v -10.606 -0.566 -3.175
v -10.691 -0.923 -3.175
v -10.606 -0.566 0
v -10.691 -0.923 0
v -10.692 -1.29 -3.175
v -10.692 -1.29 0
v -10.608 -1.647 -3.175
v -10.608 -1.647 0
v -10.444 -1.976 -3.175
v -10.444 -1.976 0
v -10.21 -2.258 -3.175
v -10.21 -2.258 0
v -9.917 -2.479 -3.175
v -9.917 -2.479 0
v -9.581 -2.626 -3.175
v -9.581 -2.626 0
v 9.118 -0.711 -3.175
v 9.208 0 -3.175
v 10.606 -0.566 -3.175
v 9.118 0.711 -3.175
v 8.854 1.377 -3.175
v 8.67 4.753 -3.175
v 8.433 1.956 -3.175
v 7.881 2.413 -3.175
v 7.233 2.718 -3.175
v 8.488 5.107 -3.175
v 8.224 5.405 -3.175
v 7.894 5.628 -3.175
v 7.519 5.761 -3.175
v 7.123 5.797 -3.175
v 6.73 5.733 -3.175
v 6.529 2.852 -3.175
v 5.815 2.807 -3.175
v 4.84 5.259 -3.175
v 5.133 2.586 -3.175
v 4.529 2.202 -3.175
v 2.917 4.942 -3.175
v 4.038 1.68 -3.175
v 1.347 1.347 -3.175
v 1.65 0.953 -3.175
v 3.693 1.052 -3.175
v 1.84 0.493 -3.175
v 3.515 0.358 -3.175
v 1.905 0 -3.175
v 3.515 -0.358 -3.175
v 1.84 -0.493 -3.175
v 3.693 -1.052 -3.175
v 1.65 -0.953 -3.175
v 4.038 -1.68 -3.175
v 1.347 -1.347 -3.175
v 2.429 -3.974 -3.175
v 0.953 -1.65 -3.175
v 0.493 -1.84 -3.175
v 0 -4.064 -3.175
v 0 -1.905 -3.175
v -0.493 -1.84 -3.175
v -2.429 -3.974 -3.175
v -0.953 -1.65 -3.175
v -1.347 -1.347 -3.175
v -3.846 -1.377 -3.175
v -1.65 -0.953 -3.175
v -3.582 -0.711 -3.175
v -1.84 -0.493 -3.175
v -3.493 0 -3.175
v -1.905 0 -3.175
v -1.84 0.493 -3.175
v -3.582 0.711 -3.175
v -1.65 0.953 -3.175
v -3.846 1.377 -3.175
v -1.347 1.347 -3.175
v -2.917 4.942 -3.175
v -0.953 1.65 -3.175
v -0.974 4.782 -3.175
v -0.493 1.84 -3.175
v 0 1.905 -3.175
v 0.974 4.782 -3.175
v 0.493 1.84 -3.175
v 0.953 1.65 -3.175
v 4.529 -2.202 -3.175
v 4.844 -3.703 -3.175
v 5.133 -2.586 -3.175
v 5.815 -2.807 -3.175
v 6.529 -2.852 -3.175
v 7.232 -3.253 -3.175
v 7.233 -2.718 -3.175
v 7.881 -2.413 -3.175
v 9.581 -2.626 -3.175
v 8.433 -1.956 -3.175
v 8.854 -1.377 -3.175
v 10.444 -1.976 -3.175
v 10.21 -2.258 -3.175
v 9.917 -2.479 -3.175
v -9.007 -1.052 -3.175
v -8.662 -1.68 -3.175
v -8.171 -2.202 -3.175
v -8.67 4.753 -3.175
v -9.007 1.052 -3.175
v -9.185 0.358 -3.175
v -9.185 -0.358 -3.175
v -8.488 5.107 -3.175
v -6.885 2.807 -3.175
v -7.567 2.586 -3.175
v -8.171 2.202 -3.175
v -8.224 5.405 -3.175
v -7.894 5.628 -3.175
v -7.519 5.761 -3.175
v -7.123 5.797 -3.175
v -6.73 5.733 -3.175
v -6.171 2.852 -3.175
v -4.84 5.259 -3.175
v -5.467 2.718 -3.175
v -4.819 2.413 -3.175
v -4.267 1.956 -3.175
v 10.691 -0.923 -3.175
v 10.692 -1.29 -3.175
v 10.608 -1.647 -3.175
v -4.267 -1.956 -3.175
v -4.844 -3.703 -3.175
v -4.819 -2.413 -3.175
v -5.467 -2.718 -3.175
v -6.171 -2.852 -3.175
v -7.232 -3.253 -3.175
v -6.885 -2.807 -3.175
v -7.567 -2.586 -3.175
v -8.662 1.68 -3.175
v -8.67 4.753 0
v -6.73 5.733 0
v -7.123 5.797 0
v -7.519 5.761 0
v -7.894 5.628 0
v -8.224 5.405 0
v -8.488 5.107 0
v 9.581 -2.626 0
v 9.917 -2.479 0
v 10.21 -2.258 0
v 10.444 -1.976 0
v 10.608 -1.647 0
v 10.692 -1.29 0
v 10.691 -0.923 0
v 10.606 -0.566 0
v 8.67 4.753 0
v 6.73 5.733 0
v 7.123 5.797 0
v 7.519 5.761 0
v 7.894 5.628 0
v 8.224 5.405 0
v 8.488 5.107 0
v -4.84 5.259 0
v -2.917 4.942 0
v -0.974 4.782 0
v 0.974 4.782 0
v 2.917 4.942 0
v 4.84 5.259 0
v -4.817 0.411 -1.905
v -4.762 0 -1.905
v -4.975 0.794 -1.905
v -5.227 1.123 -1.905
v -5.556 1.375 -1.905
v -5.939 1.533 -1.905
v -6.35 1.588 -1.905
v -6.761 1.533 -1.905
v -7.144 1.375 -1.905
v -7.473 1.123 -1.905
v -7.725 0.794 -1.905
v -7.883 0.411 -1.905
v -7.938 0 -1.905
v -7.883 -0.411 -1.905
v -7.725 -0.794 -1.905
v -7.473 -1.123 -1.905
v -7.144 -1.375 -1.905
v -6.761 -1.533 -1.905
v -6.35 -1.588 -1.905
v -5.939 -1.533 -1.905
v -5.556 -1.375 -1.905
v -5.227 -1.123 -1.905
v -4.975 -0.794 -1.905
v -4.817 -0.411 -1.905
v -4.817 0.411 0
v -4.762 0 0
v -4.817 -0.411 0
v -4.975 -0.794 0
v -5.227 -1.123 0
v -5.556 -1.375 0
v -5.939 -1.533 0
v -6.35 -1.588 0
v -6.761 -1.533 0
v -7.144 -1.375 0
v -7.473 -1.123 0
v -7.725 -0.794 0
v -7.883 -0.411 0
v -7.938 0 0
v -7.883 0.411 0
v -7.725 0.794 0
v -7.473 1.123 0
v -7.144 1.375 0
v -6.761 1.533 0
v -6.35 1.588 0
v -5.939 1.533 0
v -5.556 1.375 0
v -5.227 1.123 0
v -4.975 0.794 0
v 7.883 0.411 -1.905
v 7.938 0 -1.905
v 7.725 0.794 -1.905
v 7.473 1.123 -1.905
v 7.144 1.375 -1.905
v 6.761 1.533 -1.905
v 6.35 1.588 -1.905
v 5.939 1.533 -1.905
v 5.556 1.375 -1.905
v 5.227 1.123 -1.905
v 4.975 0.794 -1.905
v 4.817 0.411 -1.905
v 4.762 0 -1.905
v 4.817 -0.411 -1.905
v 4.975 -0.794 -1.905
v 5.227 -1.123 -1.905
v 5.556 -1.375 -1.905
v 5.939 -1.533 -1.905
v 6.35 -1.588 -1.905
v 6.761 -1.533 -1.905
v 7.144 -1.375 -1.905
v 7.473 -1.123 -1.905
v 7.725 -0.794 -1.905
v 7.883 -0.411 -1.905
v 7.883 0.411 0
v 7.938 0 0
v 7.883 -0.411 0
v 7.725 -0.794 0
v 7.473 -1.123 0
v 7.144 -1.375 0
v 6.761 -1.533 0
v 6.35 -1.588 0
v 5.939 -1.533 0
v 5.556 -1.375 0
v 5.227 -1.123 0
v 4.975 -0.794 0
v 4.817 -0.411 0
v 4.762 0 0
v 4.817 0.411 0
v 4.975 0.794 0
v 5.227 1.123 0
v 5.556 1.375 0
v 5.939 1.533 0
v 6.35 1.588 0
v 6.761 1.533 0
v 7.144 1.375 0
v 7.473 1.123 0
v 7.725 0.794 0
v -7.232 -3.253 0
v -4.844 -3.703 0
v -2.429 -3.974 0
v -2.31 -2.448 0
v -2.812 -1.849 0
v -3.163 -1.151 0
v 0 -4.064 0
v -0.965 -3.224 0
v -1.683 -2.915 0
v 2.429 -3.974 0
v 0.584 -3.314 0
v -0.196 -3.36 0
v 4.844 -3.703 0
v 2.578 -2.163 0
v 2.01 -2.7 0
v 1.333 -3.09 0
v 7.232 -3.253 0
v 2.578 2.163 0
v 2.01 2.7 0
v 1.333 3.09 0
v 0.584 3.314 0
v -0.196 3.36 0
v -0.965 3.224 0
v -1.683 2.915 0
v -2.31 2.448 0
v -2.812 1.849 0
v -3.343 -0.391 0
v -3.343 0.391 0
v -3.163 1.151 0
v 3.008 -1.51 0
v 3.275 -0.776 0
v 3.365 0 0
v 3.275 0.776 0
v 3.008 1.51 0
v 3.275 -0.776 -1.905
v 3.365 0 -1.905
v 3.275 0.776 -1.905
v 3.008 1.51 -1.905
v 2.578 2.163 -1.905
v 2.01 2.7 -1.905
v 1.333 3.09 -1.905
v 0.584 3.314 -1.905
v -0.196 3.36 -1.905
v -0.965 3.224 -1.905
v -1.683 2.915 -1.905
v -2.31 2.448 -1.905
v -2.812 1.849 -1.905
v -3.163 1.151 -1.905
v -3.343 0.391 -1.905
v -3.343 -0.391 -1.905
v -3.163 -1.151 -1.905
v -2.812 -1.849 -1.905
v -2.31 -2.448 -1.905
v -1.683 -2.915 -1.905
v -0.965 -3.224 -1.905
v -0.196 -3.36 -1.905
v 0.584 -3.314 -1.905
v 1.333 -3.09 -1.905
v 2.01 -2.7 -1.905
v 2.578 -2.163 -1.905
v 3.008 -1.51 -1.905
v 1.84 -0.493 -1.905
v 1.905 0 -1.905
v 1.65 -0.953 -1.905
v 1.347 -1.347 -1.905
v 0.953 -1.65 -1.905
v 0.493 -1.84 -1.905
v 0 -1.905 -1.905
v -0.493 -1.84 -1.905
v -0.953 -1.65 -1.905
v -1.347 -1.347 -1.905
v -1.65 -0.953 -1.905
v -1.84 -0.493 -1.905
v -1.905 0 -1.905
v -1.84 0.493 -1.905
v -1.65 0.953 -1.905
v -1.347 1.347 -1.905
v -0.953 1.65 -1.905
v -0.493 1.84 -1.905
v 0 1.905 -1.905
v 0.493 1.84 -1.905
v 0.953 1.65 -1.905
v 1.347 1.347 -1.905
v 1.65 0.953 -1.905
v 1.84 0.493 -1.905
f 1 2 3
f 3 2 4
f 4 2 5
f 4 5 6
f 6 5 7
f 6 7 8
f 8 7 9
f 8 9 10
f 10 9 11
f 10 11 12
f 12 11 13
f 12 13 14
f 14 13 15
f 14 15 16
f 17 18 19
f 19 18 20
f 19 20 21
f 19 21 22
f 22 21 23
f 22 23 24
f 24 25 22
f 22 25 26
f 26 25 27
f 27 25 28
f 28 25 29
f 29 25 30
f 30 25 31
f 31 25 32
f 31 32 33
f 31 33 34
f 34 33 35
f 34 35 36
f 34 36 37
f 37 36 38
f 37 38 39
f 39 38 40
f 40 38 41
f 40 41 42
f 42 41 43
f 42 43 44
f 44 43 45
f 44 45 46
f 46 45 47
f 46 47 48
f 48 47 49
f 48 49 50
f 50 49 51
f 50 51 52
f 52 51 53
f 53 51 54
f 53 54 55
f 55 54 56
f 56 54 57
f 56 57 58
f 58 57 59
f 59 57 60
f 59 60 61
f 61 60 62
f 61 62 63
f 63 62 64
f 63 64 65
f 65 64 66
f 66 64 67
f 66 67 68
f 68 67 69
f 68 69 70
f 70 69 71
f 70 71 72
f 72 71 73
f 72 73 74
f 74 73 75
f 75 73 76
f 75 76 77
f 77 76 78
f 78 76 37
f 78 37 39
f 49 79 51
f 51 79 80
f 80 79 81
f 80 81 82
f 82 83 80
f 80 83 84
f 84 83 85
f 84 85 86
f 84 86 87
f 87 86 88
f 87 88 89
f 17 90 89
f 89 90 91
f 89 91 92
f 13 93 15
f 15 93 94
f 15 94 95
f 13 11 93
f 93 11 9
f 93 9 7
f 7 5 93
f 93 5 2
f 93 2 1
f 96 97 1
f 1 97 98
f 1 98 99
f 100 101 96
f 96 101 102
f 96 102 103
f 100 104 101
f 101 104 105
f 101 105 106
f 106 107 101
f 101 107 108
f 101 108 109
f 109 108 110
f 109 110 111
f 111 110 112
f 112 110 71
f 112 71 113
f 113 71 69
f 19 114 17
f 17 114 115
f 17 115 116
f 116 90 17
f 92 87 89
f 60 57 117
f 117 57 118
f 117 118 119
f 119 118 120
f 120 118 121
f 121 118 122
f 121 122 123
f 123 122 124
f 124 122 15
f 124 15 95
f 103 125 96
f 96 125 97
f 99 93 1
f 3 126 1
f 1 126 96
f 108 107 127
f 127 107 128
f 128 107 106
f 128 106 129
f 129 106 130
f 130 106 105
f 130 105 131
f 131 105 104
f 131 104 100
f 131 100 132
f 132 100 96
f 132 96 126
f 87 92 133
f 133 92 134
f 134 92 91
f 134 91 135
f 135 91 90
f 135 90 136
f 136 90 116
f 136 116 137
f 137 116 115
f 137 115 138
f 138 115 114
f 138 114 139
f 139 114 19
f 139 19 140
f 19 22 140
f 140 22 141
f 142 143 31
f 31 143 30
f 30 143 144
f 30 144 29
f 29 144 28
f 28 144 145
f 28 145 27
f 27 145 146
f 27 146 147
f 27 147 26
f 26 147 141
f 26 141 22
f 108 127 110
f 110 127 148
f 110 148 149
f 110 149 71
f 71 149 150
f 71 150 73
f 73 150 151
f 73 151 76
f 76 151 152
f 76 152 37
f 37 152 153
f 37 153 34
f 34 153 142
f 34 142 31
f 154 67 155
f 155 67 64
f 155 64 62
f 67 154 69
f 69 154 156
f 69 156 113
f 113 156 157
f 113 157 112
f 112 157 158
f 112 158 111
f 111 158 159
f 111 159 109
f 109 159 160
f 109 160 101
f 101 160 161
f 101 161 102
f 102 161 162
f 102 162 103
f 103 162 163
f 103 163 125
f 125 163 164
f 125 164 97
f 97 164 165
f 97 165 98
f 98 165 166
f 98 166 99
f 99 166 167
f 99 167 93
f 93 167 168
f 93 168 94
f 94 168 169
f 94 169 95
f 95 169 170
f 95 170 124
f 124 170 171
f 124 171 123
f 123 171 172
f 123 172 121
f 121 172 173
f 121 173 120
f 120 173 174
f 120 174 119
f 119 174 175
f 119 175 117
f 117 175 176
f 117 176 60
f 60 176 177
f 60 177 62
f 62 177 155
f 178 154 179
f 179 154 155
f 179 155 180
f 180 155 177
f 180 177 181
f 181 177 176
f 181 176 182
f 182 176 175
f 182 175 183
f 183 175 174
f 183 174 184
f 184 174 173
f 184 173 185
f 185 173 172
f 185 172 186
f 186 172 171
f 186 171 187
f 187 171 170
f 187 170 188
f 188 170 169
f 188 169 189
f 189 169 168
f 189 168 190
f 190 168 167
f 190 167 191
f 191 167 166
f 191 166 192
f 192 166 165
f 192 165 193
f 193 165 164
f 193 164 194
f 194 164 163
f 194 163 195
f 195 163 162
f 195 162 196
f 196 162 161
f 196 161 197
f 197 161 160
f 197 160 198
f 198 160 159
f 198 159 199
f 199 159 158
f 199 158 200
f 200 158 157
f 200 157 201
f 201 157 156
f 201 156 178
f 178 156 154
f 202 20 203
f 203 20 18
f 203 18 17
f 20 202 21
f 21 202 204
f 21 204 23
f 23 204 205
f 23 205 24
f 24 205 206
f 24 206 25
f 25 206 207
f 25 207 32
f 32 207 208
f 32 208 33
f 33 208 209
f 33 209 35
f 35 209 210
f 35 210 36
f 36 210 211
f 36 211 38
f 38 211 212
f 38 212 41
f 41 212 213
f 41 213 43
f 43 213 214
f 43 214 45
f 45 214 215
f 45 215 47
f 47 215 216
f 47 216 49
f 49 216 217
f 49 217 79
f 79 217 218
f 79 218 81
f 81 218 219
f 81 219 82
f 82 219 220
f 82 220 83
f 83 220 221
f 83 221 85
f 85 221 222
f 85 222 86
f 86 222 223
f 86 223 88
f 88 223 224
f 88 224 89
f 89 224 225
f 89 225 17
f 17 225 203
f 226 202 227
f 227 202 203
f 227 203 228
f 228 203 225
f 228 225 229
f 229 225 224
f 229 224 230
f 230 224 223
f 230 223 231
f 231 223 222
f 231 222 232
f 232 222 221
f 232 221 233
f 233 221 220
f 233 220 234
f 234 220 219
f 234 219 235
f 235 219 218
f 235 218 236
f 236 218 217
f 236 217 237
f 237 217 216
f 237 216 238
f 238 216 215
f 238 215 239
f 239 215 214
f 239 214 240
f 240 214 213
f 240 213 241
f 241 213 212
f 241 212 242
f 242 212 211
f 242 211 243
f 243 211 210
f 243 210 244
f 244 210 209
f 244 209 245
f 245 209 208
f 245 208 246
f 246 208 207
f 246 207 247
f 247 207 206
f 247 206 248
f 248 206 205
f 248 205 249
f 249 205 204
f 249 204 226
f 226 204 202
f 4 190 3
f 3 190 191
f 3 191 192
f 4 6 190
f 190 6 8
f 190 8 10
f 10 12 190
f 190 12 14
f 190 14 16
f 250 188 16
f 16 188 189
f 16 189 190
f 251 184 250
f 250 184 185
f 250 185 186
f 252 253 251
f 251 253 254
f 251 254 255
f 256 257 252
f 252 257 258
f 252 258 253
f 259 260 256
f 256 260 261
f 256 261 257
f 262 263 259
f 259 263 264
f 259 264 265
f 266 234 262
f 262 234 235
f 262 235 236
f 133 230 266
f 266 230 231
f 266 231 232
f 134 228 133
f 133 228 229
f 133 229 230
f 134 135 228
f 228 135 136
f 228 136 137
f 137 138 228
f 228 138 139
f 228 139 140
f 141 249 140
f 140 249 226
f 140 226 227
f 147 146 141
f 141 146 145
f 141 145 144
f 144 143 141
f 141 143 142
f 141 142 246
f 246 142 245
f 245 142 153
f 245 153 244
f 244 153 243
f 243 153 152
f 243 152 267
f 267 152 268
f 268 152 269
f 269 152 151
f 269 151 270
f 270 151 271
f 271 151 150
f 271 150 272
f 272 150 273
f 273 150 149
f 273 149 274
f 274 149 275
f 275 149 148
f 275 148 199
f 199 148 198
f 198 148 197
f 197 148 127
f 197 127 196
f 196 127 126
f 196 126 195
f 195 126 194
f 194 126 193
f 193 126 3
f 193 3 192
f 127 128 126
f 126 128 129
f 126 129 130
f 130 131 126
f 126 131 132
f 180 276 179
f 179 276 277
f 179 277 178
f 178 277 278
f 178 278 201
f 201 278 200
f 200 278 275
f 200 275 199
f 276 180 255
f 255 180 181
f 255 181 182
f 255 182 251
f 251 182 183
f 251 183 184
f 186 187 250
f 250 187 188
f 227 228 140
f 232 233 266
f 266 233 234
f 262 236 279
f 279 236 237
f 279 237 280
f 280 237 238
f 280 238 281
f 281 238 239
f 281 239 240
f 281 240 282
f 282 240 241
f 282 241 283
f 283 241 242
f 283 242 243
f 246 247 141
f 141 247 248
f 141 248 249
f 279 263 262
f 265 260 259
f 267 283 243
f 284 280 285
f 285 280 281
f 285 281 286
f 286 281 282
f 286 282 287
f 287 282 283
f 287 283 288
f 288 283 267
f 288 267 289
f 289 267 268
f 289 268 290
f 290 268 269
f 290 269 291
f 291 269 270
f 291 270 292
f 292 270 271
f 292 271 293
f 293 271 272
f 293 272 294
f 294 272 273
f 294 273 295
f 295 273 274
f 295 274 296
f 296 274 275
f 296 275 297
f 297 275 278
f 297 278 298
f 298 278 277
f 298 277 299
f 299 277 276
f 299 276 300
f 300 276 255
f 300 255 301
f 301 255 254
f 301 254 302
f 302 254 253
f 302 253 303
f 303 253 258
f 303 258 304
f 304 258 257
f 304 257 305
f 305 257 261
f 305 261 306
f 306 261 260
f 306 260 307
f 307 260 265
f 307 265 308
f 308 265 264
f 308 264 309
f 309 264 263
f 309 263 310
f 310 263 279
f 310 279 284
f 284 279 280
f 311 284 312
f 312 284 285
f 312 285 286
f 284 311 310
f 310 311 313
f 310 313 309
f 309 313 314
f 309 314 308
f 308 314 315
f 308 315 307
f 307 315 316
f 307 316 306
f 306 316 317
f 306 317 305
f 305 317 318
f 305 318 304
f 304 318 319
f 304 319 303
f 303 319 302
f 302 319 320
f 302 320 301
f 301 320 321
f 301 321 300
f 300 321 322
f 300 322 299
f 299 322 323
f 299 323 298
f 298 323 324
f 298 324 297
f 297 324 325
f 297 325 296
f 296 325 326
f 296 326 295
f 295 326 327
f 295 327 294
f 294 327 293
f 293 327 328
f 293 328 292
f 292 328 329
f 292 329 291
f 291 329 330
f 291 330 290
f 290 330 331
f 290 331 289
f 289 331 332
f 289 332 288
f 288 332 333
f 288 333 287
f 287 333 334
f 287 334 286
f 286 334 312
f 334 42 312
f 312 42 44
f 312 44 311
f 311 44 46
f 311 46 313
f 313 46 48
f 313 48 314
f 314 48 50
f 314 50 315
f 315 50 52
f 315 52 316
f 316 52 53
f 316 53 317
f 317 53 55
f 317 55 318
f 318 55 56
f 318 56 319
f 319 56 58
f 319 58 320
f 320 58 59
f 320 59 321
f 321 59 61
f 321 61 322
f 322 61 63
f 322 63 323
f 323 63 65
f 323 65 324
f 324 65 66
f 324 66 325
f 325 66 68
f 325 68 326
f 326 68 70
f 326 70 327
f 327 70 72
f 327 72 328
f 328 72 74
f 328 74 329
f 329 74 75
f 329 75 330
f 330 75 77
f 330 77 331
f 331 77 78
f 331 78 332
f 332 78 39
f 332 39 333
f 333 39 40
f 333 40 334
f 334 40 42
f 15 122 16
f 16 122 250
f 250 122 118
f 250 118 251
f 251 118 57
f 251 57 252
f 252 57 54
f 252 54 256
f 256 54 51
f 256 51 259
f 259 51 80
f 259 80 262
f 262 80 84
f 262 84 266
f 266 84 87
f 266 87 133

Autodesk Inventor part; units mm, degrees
ref_plane "YZ Plane" through (0, 0, 0) normal (1, 0, 0) x (0, 1, 0)
ref_plane "XZ Plane" through (0, 0, 0) normal (0, 1, 0) x (-1, 0, 0)
ref_plane "XY Plane" through (0, 0, 0) normal (0, 0, 1) x (1, 0, 0)
sketch "Sketch1" plane through (0, 0, 0) normal (0, 0, 1) x (1, 0, 0)
  circle A0 centre (0, 0) radius 1.905
  circle A1 centre (0, 0) radius 3.3655
  line L0 (0, 0) -> (0, 28.575)
  line L1 (0, 0) -> (28.575, 0) construction
  circle A2 centre (0, 28.575) radius 32.639
  line L2 (0, 0) -> (6.35, 0)
  line L3 (6.35, 0) -> (-6.35, 0)
  circle A3 centre (-6.35, 0) radius 1.5875
  circle A4 centre (6.35, 0) radius 1.5875
  line L4 (0, 28.575) -> (11.1632, -2.0956)
  line L5 (0, 28.575) -> (32.639, 28.575) construction
  line L6 (0, 28.575) -> (-11.1632, -2.0956)
  circle A5 centre (0, 28.575) radius 23.8125
  dimension "d0" = 3.81
  dimension "d1" = 6.731
  dimension "d3" = 28.575
  dimension "d4" = 90
  dimension "d5" = 65.278
  dimension "d6" = 6.35
  dimension "d7" = 12.7
  dimension "d8" = 3.175
  dimension "d9" = 3.175
  dimension "d10" = 70
  dimension "d11" = 47.625
extrude "Extrusion1" add sketch "Sketch1" against normal blind 3.175 contours L2 A1 L3 A0 | A0 L0 A1 L2 | A0 L3 A1 L0 | A5 L4 A2 L6 | A5 L6 L0 | L0 L4 A5 picked at (-9.0211, 1.6136)
extrude "Extrusion2" cut sketch "Sketch1" against normal blind 1.905 contours L2 A1 L3 A0 | A0 L0 A1 L2 | A0 L3 A1 L0
extrude "Extrusion3" cut sketch "Sketch1" against normal through all contours A5 L6 L0 | L0 L4 A5 | L6 A5 L4
chamfer "Chamfer1" distance 1.27 angle 45 2 edges at (4.7625, 0, -3.175) (-7.9375, 0, -3.175)
fillet "Fillet1" radius 1.5875 4 edges at (8.1444, 6.1986, -1.5875) (11.1632, -2.0956, -1.5875) (-8.1444, 6.1986, -1.5875) (-11.1632, -2.0956, -1.5875)
equation "\"d9\" = d8"
properties part number "pushSwitchBushingHolder" material "ABS Plastic"
